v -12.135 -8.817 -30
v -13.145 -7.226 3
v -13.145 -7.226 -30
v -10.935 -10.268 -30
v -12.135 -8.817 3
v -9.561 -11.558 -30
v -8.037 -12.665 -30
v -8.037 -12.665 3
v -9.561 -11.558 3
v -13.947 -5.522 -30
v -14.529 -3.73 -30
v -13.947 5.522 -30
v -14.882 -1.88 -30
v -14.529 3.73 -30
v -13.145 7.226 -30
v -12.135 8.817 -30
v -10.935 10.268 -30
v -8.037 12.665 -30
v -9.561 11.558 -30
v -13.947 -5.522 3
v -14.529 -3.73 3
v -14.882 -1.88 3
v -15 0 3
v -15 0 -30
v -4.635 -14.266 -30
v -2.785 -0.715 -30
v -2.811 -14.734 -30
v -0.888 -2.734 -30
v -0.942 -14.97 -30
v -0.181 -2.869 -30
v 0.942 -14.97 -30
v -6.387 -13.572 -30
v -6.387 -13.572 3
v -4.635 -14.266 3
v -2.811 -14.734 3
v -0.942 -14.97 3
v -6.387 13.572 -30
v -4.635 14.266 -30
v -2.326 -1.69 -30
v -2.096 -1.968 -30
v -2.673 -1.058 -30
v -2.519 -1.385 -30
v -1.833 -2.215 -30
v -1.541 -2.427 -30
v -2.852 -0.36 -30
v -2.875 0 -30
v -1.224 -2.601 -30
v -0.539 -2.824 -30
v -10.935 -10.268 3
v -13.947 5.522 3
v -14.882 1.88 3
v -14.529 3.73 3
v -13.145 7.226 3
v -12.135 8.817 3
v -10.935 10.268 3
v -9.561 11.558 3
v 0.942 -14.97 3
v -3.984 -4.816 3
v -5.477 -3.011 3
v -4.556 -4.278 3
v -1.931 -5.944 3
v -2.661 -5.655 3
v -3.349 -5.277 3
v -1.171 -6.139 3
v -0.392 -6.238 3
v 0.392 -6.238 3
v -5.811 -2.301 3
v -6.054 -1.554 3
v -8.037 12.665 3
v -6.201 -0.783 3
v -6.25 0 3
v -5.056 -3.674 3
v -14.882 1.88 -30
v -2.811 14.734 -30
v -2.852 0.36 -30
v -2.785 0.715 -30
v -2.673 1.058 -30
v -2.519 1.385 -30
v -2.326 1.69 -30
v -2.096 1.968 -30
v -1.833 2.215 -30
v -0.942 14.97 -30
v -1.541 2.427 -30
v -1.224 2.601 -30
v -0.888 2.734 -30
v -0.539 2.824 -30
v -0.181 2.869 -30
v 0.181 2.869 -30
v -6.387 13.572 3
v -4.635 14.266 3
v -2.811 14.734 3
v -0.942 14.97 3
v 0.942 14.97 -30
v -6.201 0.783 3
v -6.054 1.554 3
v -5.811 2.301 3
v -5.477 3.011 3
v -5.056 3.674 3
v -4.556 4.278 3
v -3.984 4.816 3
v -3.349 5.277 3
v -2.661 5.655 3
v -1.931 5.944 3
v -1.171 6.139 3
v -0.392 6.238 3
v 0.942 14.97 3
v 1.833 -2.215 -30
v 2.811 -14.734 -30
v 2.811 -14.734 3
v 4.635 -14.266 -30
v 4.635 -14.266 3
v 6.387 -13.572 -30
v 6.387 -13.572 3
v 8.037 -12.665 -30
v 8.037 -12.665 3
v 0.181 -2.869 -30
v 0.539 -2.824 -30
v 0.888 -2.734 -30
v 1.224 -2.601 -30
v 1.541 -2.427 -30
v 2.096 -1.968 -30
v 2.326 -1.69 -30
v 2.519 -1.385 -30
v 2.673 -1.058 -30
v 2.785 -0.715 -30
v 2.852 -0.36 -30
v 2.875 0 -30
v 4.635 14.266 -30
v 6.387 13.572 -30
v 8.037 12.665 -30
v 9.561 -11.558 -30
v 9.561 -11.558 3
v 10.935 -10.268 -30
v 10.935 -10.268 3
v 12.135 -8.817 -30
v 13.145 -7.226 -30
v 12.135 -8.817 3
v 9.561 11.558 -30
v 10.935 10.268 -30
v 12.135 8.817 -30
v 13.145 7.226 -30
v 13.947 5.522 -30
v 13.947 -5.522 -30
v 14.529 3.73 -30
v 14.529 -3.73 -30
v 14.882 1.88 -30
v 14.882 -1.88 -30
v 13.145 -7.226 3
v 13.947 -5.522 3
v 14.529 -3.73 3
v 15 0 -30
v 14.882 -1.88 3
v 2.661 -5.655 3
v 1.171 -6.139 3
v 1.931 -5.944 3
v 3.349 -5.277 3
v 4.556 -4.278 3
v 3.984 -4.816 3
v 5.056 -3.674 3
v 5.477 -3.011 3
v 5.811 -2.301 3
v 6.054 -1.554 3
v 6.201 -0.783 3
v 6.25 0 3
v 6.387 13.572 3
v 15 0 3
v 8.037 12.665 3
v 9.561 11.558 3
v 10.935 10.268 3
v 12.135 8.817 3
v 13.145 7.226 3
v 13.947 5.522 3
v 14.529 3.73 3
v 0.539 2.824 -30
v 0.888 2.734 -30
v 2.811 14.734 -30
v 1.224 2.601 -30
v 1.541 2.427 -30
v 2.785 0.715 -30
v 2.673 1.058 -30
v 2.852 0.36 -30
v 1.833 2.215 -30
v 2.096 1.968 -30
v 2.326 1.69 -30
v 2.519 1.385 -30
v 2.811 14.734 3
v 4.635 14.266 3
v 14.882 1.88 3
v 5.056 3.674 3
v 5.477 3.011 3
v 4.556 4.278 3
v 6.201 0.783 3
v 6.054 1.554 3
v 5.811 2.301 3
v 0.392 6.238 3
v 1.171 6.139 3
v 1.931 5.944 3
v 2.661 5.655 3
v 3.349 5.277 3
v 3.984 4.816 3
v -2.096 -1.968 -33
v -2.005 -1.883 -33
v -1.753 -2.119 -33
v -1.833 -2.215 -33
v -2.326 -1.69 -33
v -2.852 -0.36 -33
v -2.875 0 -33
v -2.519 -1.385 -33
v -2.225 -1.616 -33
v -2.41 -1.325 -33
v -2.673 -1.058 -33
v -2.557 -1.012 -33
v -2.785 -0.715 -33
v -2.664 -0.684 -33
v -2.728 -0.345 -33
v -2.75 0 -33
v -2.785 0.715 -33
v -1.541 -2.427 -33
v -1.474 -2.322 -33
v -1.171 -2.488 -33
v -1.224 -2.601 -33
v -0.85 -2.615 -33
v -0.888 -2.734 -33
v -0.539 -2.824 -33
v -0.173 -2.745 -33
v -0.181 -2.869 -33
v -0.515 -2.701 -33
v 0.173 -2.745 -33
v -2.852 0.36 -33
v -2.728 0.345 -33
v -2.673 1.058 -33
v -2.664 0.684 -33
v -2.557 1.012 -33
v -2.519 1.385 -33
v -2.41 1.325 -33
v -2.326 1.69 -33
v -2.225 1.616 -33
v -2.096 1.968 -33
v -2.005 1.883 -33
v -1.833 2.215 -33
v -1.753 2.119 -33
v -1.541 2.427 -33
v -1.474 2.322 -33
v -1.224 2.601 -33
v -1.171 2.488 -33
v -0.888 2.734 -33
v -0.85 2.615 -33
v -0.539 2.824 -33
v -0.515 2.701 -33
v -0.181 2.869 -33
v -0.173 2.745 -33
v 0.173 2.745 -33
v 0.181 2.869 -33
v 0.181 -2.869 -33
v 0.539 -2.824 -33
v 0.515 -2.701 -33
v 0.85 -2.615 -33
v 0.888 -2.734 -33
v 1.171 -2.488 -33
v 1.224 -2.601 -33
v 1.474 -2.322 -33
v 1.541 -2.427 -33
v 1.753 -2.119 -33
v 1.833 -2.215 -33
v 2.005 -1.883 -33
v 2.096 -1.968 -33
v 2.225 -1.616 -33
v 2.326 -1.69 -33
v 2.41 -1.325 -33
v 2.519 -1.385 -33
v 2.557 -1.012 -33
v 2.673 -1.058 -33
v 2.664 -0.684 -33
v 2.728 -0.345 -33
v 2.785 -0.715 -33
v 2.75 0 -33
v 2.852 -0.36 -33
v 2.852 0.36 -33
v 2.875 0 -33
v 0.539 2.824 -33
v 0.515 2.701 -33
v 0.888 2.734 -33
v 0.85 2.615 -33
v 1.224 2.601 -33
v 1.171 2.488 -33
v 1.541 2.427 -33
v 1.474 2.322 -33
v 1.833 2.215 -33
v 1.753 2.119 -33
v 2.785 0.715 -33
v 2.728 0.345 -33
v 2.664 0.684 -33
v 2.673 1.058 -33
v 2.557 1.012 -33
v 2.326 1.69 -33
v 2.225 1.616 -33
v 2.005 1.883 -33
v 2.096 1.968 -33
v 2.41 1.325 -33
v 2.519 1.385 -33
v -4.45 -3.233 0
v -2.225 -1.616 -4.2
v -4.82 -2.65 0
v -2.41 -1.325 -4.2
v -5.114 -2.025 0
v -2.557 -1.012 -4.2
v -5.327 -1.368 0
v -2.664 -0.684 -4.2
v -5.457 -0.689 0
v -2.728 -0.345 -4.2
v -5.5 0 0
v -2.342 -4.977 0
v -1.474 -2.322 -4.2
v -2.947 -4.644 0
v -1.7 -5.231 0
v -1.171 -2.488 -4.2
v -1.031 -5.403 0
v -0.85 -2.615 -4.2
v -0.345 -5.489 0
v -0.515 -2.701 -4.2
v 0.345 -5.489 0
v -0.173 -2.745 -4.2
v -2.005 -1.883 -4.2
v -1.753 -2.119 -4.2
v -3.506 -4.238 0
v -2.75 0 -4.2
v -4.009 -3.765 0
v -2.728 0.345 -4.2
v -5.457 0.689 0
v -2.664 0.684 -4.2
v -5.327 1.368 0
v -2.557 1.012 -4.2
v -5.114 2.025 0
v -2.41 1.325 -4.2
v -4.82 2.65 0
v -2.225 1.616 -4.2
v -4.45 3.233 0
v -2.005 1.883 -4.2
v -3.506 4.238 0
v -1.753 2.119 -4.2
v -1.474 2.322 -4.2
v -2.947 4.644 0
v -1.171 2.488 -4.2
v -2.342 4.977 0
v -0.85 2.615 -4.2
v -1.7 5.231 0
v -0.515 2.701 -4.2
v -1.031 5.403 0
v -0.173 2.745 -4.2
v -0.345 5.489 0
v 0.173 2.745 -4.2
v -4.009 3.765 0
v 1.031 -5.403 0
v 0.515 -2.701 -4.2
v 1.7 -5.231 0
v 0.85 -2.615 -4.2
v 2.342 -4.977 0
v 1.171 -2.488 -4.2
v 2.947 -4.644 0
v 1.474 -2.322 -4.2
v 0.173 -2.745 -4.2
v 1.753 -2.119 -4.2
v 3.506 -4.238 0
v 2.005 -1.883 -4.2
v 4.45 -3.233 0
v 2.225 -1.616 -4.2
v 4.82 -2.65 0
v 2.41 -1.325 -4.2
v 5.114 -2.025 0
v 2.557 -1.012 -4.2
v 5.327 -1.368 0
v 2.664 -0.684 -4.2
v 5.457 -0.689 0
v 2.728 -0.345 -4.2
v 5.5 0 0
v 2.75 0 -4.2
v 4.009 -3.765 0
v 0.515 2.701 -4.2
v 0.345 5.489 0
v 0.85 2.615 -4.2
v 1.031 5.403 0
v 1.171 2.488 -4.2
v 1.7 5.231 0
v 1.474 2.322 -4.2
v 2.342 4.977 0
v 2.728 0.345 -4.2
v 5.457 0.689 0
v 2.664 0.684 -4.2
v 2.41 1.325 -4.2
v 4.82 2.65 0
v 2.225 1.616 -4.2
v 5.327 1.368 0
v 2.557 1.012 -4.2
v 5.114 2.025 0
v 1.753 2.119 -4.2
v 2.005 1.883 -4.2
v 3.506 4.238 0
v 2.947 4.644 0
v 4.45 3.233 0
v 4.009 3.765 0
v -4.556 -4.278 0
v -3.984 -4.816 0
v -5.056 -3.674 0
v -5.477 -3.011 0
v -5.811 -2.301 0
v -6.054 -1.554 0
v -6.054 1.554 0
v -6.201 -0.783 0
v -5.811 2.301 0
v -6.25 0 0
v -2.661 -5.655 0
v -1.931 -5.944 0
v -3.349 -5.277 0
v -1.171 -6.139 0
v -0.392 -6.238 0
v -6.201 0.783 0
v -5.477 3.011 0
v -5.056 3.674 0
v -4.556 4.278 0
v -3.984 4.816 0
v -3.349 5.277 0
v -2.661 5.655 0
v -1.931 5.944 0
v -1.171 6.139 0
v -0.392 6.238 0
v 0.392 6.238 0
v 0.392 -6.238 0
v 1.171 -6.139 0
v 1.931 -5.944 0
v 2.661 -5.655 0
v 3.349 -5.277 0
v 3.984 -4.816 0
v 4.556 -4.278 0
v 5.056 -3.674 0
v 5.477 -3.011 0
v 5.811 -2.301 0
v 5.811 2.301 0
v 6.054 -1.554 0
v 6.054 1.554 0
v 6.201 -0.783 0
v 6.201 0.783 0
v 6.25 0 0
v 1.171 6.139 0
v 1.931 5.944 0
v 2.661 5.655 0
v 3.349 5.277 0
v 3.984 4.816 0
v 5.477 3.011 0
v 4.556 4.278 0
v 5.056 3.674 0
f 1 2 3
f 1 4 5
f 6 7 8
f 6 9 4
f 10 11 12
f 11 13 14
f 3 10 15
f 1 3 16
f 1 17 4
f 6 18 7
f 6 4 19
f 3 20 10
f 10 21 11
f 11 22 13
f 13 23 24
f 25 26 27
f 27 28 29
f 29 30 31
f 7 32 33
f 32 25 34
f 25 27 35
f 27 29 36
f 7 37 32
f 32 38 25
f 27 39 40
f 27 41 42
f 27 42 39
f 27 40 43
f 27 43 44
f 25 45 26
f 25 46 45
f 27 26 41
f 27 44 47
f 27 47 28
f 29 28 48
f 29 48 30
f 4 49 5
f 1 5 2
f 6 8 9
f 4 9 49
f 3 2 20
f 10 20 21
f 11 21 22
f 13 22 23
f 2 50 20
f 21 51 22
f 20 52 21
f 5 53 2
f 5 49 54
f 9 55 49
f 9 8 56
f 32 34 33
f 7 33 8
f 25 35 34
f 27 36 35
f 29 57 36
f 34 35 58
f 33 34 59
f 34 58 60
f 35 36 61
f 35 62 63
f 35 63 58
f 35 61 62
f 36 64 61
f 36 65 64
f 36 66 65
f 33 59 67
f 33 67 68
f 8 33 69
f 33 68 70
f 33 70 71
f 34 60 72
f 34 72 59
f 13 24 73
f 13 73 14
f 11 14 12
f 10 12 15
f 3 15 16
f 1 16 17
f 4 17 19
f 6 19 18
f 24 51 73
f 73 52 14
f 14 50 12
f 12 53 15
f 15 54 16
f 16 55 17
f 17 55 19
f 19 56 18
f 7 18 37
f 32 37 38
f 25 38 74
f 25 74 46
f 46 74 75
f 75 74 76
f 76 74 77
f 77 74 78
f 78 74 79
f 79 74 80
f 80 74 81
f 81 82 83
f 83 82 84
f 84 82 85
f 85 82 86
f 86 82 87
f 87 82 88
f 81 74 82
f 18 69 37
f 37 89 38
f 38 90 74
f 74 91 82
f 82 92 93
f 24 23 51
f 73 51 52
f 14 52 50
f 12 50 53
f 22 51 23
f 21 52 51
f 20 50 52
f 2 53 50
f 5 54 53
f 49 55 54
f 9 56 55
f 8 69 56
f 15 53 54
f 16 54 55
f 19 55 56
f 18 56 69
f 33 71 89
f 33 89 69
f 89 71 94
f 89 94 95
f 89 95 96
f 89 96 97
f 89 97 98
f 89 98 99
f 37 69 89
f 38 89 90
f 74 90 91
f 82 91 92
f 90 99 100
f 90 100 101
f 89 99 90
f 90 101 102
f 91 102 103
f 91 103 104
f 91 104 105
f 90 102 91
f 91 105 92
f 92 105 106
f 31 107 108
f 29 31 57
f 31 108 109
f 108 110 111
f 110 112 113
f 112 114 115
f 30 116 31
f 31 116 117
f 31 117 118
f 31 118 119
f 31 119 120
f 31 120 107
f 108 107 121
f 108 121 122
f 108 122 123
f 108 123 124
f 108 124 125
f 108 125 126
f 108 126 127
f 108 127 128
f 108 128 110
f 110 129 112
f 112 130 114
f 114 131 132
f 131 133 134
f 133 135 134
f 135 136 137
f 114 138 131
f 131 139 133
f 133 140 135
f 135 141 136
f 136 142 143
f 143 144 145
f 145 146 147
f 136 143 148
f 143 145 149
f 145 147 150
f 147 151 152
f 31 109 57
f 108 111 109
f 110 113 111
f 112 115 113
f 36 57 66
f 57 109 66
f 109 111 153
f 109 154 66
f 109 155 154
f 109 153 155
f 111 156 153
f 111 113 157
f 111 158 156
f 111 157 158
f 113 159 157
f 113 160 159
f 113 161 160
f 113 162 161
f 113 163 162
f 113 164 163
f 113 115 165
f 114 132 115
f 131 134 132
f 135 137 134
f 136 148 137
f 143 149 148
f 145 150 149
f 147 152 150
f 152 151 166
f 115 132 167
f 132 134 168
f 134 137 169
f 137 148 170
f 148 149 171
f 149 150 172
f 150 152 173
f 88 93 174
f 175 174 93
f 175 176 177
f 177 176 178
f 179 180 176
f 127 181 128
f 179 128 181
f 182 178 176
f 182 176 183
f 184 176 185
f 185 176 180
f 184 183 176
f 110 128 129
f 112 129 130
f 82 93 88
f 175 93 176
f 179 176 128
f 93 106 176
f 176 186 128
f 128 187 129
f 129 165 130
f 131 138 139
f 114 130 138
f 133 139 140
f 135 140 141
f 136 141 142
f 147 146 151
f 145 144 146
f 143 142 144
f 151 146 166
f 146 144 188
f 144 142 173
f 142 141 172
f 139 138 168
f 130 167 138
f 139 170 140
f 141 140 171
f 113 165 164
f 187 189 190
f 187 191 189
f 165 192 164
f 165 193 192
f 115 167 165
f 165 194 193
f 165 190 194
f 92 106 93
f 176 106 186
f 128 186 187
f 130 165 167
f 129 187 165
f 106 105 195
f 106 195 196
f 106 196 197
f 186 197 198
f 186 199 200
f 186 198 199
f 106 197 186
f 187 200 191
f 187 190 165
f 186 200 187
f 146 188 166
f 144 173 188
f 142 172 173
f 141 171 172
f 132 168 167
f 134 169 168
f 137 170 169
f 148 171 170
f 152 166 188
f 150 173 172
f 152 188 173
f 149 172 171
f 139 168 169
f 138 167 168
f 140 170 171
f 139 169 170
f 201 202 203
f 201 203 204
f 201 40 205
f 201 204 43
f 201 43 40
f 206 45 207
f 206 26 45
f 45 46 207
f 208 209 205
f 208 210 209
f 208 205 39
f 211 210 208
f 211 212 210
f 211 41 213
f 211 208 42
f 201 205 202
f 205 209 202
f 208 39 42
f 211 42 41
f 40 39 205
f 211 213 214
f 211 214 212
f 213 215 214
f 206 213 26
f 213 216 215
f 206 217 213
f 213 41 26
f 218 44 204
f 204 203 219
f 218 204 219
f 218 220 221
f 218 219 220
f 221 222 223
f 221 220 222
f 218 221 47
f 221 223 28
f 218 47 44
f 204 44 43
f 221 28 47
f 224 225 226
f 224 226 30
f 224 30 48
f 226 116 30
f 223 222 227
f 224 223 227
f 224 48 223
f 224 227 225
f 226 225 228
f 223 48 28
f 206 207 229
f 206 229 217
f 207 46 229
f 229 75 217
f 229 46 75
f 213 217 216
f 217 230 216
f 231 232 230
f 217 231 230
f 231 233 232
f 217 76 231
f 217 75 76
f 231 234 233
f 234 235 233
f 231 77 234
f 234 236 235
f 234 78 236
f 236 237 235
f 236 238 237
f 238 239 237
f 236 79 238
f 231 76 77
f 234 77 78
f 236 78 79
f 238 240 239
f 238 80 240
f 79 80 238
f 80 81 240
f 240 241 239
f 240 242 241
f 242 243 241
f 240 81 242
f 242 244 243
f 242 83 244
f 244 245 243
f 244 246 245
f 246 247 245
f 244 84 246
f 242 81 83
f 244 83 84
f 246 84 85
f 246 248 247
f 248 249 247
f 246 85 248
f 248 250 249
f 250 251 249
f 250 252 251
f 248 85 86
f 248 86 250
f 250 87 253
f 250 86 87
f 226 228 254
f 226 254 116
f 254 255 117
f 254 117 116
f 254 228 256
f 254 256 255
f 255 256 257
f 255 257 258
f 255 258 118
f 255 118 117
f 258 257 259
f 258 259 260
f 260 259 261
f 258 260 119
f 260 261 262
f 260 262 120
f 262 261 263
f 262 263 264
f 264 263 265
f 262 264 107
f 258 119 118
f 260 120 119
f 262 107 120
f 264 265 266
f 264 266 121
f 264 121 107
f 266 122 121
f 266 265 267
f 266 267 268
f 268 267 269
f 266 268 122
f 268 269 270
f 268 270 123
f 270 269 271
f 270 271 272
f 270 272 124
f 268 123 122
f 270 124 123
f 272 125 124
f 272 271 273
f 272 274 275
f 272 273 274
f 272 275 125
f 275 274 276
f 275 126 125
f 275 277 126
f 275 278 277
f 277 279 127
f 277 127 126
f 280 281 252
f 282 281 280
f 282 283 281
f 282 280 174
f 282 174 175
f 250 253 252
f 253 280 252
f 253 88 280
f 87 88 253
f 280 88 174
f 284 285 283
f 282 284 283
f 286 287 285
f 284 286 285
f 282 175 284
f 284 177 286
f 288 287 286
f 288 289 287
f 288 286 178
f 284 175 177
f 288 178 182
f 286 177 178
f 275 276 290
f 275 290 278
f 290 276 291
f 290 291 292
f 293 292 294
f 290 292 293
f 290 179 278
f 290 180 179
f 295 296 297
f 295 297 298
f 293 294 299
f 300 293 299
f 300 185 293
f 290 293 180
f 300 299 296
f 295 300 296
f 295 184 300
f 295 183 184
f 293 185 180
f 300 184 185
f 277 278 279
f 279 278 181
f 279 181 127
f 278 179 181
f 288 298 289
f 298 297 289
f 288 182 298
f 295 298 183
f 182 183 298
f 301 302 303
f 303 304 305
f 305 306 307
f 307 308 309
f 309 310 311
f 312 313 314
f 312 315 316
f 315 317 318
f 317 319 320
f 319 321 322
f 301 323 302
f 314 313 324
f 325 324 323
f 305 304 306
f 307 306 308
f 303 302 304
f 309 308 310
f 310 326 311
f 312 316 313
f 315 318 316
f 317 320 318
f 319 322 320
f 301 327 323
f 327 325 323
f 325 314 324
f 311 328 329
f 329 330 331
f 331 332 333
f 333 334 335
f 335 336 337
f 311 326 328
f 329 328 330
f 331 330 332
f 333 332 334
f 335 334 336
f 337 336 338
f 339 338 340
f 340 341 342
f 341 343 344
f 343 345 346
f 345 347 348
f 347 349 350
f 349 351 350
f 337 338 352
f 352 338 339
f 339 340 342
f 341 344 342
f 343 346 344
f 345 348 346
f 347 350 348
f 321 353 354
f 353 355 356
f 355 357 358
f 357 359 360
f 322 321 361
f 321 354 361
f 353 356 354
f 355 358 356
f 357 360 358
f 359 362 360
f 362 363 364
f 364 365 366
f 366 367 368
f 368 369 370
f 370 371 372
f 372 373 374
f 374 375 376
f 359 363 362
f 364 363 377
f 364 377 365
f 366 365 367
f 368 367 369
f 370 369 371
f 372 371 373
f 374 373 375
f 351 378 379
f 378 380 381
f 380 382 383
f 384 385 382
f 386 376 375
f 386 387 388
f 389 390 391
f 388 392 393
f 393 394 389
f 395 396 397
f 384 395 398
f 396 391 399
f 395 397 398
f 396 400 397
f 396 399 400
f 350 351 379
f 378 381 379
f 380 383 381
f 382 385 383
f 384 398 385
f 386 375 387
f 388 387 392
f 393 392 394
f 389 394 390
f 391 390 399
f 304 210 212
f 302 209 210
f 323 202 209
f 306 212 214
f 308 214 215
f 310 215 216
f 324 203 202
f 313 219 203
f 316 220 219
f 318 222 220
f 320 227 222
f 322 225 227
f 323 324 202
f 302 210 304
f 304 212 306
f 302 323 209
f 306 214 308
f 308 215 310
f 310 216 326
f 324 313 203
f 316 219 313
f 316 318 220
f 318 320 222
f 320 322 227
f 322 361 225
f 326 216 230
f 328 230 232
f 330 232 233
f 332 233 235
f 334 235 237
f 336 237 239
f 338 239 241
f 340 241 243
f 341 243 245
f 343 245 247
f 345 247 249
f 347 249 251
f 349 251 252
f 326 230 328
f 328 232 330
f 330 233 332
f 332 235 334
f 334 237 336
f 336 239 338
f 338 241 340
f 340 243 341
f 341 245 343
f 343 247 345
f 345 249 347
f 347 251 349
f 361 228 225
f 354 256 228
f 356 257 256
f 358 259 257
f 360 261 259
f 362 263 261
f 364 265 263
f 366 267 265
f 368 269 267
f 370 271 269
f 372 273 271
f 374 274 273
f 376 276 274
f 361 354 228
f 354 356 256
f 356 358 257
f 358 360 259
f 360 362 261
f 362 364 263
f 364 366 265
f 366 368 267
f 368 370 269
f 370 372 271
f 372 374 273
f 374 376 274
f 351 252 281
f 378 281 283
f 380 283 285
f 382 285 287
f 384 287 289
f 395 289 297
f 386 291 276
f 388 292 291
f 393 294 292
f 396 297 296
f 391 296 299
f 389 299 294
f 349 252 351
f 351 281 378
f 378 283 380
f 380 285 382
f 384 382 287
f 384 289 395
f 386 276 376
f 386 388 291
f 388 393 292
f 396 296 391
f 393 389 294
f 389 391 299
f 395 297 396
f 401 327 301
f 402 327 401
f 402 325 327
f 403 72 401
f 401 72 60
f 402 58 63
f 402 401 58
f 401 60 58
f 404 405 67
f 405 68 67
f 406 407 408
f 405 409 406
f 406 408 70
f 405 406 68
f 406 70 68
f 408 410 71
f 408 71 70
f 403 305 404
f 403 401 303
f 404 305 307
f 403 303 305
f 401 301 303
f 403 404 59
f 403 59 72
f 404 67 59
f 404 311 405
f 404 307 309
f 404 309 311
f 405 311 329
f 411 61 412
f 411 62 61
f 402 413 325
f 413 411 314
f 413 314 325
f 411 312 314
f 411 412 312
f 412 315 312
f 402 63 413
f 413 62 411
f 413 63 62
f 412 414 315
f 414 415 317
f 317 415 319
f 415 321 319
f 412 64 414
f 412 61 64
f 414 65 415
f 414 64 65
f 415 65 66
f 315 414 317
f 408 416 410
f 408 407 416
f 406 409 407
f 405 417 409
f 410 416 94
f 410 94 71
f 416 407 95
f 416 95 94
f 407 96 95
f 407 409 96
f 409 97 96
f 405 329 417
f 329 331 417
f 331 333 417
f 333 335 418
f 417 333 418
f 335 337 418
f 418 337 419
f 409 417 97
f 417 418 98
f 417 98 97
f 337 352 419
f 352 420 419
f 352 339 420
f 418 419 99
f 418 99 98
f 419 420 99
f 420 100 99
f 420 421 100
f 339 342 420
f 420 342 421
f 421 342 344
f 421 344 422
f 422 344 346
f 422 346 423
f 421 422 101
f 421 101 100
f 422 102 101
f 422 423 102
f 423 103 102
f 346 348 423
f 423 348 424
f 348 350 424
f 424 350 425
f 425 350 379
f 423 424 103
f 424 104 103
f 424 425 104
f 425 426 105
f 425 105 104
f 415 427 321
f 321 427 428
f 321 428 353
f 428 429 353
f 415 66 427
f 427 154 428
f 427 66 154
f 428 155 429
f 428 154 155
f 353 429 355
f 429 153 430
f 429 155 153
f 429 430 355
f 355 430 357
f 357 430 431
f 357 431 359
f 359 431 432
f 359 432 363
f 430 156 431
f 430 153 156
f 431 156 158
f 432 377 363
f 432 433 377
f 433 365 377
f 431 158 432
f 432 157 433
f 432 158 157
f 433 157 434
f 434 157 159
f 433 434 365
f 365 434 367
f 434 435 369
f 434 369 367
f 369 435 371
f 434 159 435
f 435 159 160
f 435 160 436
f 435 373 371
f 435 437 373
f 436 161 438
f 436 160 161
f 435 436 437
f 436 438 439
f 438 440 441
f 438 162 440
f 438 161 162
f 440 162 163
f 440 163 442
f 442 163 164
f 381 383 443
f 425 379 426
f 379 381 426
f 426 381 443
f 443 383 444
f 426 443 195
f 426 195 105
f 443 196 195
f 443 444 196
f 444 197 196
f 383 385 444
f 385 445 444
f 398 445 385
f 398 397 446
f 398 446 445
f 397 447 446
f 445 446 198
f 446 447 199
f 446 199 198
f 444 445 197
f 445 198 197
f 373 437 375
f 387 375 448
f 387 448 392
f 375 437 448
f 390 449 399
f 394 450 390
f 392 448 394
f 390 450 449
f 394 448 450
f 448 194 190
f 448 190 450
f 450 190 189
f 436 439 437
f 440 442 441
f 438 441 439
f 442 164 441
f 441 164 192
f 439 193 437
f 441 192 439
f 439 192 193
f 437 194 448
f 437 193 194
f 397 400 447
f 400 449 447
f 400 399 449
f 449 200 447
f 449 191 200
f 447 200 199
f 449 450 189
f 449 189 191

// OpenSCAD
$fn = 50;

difference() {
	union() {
		translate(v = [0, 0, -30.0]) {
			cylinder(h = 33, r = 15.0);
		}
		#translate(v = [0, 0, -33.0]) {
			cylinder(h = 33, r = 2.875);
		}
	}
	union() {
		translate(v = [0, 0, 0]) {
			rotate(a = [0, 0, 0]) {
				difference() {
					union() {
						translate(v = [0, 0, -33.0]) {
							cylinder(h = 33, r = 2.25);
						}
						translate(v = [0, 0, -4.2]) {
							cylinder(h = 4.2, r1 = 2.75, r2 = 5.5);
						}
						translate(v = [0, 0, -33.0]) {
							cylinder(h = 33, r = 2.75);
						}
						translate(v = [0, 0, -33.0]) {
							cylinder(h = 33, r = 2.25);
						}
					}
					union();
				}
			}
		}
		#cylinder(h = 3, r = 6.25);
	}
}
